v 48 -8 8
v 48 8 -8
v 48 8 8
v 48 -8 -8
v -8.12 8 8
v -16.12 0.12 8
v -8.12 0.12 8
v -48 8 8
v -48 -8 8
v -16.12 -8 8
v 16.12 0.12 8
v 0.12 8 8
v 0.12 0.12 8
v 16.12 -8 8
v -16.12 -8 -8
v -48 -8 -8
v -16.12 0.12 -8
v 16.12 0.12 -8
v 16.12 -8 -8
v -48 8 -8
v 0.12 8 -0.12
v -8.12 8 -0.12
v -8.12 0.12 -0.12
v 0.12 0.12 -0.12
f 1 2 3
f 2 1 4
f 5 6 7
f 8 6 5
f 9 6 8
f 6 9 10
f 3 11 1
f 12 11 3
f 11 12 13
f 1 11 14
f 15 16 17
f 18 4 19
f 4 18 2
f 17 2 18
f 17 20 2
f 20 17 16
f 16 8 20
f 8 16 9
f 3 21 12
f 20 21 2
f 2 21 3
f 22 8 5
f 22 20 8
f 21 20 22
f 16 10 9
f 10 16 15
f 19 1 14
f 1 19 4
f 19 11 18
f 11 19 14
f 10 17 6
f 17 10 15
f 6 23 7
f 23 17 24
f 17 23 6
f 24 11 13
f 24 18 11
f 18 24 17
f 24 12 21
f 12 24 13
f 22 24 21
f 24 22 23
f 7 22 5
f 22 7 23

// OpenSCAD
measure = 8;
dd = 0.12/measure;

scale([measure,measure,measure]) difference() {
    cube(size = [12,2,2], center = true);
    translate([0,-0.5,0]) 
        cube(size = [4 + 2*dd, 1 + 2*dd, 2 + 2*dd], center=true);
    translate([-0.5,0.5,0.5]) 
        cube(size=[1 + 2*dd, 1 + 2*dd, 1 + 2*dd], center=true);
}
